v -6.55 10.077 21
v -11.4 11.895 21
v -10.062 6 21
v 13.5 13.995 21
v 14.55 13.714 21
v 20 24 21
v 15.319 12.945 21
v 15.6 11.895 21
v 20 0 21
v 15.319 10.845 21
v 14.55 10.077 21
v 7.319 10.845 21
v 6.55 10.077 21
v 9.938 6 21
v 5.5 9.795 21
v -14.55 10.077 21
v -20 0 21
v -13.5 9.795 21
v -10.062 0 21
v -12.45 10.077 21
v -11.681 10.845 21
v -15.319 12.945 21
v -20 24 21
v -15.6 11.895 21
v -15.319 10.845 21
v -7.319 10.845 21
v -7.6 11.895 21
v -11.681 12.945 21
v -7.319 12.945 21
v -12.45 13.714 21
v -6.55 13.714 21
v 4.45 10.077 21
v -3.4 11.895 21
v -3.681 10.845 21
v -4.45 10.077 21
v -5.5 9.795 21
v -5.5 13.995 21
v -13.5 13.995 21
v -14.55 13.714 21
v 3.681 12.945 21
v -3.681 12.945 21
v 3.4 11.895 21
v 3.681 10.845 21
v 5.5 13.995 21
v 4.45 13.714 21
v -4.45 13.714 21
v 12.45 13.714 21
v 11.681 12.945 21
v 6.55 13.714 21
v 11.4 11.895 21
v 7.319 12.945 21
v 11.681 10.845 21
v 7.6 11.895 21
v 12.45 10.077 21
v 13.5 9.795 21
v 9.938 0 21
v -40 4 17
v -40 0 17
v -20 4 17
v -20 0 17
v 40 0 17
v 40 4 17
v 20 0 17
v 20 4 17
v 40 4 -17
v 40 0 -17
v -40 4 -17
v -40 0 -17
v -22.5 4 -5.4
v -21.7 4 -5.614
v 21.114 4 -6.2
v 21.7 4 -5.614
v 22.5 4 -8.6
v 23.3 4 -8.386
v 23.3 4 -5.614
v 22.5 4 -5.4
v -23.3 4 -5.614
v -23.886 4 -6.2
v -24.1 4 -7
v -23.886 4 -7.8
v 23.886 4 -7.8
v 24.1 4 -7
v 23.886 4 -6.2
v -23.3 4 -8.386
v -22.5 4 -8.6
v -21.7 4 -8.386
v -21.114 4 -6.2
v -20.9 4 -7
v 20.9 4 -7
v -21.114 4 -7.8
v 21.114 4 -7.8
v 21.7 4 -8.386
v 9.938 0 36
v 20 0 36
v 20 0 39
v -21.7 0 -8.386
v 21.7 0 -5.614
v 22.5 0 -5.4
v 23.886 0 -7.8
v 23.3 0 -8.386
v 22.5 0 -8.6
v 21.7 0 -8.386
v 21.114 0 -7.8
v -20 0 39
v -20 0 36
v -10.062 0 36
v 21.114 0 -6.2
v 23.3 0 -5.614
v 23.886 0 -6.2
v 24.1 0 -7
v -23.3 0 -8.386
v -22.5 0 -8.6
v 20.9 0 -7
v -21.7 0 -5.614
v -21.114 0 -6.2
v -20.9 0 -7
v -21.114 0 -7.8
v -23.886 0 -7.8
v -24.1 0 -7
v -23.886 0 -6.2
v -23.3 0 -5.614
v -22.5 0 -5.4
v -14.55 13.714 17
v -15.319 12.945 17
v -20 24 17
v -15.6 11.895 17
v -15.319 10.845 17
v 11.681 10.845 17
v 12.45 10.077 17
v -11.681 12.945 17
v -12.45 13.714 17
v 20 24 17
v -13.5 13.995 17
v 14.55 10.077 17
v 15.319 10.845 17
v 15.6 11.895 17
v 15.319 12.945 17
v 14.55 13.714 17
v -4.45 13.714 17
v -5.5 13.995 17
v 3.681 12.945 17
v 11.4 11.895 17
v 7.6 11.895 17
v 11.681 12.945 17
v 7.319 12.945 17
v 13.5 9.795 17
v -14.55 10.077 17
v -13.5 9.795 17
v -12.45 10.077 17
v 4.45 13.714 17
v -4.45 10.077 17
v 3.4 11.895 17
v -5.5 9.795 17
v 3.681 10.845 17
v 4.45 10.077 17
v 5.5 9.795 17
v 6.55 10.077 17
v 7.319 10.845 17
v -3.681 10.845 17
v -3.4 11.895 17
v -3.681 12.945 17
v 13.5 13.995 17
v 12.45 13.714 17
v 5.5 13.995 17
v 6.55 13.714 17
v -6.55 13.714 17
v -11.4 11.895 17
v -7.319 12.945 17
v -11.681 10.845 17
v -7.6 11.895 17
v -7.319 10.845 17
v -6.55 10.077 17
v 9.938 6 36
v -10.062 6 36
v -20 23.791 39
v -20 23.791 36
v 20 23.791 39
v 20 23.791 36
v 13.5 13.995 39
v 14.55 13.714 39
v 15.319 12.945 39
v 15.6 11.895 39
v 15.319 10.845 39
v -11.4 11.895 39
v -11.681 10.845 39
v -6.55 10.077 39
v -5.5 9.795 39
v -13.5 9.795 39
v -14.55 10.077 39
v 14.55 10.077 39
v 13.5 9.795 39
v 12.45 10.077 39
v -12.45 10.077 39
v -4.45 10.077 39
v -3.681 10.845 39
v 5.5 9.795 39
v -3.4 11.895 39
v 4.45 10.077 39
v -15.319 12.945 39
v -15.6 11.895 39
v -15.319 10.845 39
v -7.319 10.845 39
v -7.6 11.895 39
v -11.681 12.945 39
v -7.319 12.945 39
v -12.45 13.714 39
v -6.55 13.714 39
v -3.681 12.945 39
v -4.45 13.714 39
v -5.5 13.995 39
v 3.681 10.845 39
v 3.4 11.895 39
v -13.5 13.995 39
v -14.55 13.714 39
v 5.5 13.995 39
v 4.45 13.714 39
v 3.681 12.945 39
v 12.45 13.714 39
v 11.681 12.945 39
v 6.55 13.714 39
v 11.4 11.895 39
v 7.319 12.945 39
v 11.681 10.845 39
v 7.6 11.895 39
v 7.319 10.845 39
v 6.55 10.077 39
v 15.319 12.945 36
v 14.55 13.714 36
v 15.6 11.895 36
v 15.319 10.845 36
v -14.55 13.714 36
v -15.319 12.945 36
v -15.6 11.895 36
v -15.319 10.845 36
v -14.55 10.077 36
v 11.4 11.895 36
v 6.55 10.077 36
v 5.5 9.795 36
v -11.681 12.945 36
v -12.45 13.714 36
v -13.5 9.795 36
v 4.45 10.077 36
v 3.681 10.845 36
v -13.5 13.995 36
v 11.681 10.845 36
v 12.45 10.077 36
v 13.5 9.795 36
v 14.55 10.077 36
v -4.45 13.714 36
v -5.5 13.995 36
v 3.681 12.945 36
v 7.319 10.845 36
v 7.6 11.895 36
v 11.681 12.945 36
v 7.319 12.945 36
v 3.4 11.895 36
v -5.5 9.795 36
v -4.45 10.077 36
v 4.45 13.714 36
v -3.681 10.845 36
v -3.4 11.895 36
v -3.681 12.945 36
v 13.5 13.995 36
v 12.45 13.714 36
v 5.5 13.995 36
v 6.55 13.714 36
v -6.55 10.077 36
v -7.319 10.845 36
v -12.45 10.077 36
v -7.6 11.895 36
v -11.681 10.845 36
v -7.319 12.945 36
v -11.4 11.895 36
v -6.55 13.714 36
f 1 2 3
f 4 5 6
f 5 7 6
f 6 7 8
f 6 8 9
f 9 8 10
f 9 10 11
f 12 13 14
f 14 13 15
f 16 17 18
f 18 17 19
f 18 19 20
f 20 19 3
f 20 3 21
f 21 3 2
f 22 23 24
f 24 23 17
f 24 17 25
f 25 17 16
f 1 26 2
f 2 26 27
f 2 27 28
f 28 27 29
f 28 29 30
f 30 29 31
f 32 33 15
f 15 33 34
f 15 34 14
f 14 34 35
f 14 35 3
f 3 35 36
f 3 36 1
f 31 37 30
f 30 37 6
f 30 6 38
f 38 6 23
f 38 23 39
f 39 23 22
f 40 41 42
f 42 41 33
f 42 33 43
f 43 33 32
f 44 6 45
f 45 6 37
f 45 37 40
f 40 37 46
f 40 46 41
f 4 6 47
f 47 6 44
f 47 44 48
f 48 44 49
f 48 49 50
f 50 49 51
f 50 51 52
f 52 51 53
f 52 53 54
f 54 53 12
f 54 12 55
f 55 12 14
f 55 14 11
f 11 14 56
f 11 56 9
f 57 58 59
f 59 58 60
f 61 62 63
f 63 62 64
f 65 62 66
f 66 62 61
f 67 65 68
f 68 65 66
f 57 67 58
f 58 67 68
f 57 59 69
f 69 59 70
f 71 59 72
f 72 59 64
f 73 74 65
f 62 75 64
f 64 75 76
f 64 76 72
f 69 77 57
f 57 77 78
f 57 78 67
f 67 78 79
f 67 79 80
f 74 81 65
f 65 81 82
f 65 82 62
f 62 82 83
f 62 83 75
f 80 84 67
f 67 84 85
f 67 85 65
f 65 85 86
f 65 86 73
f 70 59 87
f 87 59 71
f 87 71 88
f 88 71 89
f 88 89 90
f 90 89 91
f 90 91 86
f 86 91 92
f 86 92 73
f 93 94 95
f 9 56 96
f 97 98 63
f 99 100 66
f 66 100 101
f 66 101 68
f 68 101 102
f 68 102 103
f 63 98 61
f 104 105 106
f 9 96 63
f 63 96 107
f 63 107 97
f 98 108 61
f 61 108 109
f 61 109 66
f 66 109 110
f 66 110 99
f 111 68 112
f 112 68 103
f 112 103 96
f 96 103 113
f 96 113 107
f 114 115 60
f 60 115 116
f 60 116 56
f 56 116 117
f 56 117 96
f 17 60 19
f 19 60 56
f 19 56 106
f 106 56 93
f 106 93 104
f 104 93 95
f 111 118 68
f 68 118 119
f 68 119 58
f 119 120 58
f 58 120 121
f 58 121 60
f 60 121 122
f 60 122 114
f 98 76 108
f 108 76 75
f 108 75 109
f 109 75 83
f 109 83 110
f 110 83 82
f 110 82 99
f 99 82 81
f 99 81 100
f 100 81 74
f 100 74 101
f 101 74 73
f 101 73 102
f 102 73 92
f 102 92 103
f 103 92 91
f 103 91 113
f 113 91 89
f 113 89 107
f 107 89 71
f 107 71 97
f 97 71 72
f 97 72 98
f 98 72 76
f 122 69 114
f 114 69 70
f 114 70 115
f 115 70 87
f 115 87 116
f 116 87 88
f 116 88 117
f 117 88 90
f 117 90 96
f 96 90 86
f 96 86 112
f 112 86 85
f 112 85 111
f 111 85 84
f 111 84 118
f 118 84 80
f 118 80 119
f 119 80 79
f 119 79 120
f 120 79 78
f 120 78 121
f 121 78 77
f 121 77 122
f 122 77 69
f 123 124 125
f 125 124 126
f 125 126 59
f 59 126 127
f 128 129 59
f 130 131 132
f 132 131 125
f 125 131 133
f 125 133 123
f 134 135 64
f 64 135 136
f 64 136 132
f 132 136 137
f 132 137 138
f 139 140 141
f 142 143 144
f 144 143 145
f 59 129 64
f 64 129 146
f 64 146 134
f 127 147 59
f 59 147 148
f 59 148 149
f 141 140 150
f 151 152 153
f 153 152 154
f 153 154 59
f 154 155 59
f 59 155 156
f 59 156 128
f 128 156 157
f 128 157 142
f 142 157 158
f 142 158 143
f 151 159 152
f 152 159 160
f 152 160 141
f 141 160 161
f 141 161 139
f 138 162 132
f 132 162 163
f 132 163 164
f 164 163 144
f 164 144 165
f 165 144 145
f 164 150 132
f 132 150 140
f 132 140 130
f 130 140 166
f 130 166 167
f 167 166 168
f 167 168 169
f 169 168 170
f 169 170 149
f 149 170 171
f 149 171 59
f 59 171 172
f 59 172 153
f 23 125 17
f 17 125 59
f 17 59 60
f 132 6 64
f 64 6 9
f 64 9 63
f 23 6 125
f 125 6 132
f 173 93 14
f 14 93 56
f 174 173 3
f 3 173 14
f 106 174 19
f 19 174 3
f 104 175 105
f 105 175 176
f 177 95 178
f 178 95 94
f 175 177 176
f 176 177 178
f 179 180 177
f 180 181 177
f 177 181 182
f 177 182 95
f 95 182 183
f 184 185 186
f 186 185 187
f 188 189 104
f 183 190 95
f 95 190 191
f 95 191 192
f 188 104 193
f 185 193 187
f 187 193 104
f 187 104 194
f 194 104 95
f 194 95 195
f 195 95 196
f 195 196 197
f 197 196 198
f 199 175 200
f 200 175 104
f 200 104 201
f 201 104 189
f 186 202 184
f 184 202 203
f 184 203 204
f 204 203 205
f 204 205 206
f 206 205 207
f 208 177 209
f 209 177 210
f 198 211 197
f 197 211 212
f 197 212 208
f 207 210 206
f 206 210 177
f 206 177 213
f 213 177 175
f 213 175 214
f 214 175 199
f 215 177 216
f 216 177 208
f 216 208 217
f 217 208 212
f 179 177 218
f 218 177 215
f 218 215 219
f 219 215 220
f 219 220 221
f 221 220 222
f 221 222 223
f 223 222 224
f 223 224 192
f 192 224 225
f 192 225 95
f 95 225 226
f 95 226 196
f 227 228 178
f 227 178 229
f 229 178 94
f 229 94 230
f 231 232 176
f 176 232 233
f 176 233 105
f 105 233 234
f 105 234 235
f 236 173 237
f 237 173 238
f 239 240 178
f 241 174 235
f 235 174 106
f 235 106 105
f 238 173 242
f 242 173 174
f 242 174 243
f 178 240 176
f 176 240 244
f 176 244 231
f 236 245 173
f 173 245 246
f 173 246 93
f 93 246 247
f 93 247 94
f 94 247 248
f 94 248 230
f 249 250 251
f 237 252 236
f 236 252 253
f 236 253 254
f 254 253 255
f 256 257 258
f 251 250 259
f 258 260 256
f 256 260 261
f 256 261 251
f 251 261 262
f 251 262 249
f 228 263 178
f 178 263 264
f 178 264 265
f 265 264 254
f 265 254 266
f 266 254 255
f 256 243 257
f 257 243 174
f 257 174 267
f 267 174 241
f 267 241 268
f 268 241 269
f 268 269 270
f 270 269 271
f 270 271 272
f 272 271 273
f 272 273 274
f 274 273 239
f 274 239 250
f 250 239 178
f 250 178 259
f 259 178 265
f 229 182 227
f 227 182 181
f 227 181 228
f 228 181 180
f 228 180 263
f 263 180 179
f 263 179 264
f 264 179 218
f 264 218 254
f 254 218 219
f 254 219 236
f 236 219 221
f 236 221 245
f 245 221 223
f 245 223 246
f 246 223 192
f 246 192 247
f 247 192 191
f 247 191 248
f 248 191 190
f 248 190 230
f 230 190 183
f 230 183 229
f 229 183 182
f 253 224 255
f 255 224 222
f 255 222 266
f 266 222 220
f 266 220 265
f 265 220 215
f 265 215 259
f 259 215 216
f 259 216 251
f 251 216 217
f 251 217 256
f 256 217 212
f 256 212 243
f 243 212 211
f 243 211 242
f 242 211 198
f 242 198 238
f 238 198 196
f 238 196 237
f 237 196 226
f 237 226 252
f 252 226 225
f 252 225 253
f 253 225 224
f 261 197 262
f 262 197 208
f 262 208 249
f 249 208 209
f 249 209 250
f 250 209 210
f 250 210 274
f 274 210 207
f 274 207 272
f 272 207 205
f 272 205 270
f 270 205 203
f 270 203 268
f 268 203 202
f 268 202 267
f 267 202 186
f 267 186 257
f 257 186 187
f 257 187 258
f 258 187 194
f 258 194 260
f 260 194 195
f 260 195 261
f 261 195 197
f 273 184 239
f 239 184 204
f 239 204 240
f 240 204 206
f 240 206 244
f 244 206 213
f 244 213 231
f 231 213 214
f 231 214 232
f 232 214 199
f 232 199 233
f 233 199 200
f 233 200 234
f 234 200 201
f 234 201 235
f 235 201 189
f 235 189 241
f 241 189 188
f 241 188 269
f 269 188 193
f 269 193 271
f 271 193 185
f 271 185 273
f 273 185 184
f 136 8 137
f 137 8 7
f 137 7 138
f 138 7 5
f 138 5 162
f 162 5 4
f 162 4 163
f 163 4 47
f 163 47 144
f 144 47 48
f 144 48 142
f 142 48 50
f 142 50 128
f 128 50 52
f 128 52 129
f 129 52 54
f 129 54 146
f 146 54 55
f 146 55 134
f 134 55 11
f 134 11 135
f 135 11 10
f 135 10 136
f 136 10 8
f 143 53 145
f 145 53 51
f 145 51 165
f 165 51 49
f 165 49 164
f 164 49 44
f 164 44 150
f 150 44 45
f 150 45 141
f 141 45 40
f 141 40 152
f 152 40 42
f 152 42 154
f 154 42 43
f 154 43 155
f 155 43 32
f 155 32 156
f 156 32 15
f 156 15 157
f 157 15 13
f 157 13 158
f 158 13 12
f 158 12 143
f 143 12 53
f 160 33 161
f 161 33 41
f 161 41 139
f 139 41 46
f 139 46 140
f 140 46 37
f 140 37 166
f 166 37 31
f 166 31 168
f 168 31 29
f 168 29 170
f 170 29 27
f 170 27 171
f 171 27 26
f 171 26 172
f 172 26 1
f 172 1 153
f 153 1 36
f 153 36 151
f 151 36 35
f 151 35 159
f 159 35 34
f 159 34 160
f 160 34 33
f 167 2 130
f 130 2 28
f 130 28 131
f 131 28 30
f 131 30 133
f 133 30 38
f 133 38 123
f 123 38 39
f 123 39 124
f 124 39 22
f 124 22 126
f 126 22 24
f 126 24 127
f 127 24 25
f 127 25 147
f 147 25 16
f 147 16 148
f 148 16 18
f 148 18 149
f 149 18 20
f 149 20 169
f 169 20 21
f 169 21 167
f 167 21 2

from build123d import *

# Parameters (mm, degrees)
SKETCH_1_W          = 80
SKETCH_1_H          = 34
EXTRUDE_1_DEPTH     = 4
CUT_EXTRUDE_1_REACH = 45.646
SKETCH_2_R          = 1.6
SKETCH_3_W          = 40
SKETCH_3_H          = 24
EXTRUDE_2_DEPTH     = 4
SKETCH_4_W          = 20
SKETCH_4_H          = 6
EXTRUDE_3_DEPTH     = 15
SKETCH_5_W          = 40
SKETCH_5_H          = 23.790626796
EXTRUDE_4_DEPTH     = 3
CUT_EXTRUDE_2_REACH = 74.883
SKETCH_6_R          = 2.1


with BuildPart() as part:
    # 草图1 → 凸台-拉伸1 (new body)
    with BuildSketch(Plane(origin=(0, 0, 0), x_dir=(1, 0, 0), z_dir=(0, 1, 0))):
        Rectangle(SKETCH_1_W, SKETCH_1_H)
    extrude(amount=EXTRUDE_1_DEPTH)

    # 草图2 → 切除-拉伸1 (cut, up to next)
    with BuildSketch(Plane(origin=(0, 4, 0), x_dir=(1, 0, 0), z_dir=(0, 1, 0)), mode=Mode.PRIVATE) as cut_extrude_1_sk1:
        with Locations(Location((-22.5, 7, 0), (0, 0, 270))):
            Circle(SKETCH_2_R)
    cut_extrude_1_tool1 = extrude(cut_extrude_1_sk1.sketch, amount=-CUT_EXTRUDE_1_REACH, mode=Mode.PRIVATE) & part.part
    # 草图2 → 切除-拉伸1 (cut, up to next)
    with BuildSketch(Plane(origin=(0, 4, 0), x_dir=(1, 0, 0), z_dir=(0, 1, 0)), mode=Mode.PRIVATE) as cut_extrude_1_sk2:
        with Locations(Location((22.5, 7, 0), (0, 0, 270))):
            Circle(SKETCH_2_R)
    cut_extrude_1_tool2 = extrude(cut_extrude_1_sk2.sketch, amount=-CUT_EXTRUDE_1_REACH, mode=Mode.PRIVATE) & part.part
    add(cut_extrude_1_tool1.solids().sort_by_distance((-22.5, 4, -7))[0], mode=Mode.SUBTRACT)
    add(cut_extrude_1_tool2.solids().sort_by_distance((22.5, 4, -7))[0], mode=Mode.SUBTRACT)

    # 草图3 → 凸台-拉伸2 (add)
    with BuildSketch(Plane.XY.offset(17)):
        with Locations((0, 12)):
            Rectangle(SKETCH_3_W, SKETCH_3_H)
    extrude(amount=EXTRUDE_2_DEPTH)

    # 草图4 → 凸台-拉伸3 (add)
    with BuildSketch(Plane.XY.offset(21)):
        with Locations((-0.061987537, 3)):
            Rectangle(SKETCH_4_W, SKETCH_4_H)
    extrude(amount=EXTRUDE_3_DEPTH)

    # 草图5 → 凸台-拉伸4 (add)
    with BuildSketch(Plane.XY.offset(36)):
        with Locations((0, 11.895313398)):
            Rectangle(SKETCH_5_W, SKETCH_5_H)
    extrude(amount=EXTRUDE_4_DEPTH)

    # 切除-拉伸2: up to this face of the body (flat: up to its plane)
    cut_extrude_2_end = Plane(part.part.faces().sort_by_distance((0, 14, 17))[0])
    # 草图6 → 切除-拉伸2 (cut, up to the picked face)
    with BuildSketch(Plane.XY.offset(39), mode=Mode.PRIVATE) as cut_extrude_2_sk1:
        with Locations((-13.5, 11.895313398)):
            Circle(SKETCH_6_R)
    cut_extrude_2_tool1 = split(extrude(cut_extrude_2_sk1.sketch, amount=-CUT_EXTRUDE_2_REACH, mode=Mode.PRIVATE), bisect_by=cut_extrude_2_end, keep=Keep.BOTH, mode=Mode.PRIVATE)
    # 草图6 → 切除-拉伸2 (cut, up to the picked face)
    with BuildSketch(Plane.XY.offset(39), mode=Mode.PRIVATE) as cut_extrude_2_sk2:
        with Locations((-5.5, 11.895313398)):
            Circle(SKETCH_6_R)
    cut_extrude_2_tool2 = split(extrude(cut_extrude_2_sk2.sketch, amount=-CUT_EXTRUDE_2_REACH, mode=Mode.PRIVATE), bisect_by=cut_extrude_2_end, keep=Keep.BOTH, mode=Mode.PRIVATE)
    # 草图6 → 切除-拉伸2 (cut, up to the picked face)
    with BuildSketch(Plane.XY.offset(39), mode=Mode.PRIVATE) as cut_extrude_2_sk3:
        with Locations((5.5, 11.895313398)):
            Circle(SKETCH_6_R)
    cut_extrude_2_tool3 = split(extrude(cut_extrude_2_sk3.sketch, amount=-CUT_EXTRUDE_2_REACH, mode=Mode.PRIVATE), bisect_by=cut_extrude_2_end, keep=Keep.BOTH, mode=Mode.PRIVATE)
    # 草图6 → 切除-拉伸2 (cut, up to the picked face)
    with BuildSketch(Plane.XY.offset(39), mode=Mode.PRIVATE) as cut_extrude_2_sk4:
        with Locations((13.5, 11.895313398)):
            Circle(SKETCH_6_R)
    cut_extrude_2_tool4 = split(extrude(cut_extrude_2_sk4.sketch, amount=-CUT_EXTRUDE_2_REACH, mode=Mode.PRIVATE), bisect_by=cut_extrude_2_end, keep=Keep.BOTH, mode=Mode.PRIVATE)
    add(cut_extrude_2_tool1.solids().sort_by(Axis((-13.5, 11.895313, 39), (0, 0, -1)))[0], mode=Mode.SUBTRACT)
    add(cut_extrude_2_tool2.solids().sort_by(Axis((-5.5, 11.895313, 39), (0, 0, -1)))[0], mode=Mode.SUBTRACT)
    add(cut_extrude_2_tool3.solids().sort_by(Axis((5.5, 11.895313, 39), (0, 0, -1)))[0], mode=Mode.SUBTRACT)
    add(cut_extrude_2_tool4.solids().sort_by(Axis((13.5, 11.895313, 39), (0, 0, -1)))[0], mode=Mode.SUBTRACT)


solid = part.part
